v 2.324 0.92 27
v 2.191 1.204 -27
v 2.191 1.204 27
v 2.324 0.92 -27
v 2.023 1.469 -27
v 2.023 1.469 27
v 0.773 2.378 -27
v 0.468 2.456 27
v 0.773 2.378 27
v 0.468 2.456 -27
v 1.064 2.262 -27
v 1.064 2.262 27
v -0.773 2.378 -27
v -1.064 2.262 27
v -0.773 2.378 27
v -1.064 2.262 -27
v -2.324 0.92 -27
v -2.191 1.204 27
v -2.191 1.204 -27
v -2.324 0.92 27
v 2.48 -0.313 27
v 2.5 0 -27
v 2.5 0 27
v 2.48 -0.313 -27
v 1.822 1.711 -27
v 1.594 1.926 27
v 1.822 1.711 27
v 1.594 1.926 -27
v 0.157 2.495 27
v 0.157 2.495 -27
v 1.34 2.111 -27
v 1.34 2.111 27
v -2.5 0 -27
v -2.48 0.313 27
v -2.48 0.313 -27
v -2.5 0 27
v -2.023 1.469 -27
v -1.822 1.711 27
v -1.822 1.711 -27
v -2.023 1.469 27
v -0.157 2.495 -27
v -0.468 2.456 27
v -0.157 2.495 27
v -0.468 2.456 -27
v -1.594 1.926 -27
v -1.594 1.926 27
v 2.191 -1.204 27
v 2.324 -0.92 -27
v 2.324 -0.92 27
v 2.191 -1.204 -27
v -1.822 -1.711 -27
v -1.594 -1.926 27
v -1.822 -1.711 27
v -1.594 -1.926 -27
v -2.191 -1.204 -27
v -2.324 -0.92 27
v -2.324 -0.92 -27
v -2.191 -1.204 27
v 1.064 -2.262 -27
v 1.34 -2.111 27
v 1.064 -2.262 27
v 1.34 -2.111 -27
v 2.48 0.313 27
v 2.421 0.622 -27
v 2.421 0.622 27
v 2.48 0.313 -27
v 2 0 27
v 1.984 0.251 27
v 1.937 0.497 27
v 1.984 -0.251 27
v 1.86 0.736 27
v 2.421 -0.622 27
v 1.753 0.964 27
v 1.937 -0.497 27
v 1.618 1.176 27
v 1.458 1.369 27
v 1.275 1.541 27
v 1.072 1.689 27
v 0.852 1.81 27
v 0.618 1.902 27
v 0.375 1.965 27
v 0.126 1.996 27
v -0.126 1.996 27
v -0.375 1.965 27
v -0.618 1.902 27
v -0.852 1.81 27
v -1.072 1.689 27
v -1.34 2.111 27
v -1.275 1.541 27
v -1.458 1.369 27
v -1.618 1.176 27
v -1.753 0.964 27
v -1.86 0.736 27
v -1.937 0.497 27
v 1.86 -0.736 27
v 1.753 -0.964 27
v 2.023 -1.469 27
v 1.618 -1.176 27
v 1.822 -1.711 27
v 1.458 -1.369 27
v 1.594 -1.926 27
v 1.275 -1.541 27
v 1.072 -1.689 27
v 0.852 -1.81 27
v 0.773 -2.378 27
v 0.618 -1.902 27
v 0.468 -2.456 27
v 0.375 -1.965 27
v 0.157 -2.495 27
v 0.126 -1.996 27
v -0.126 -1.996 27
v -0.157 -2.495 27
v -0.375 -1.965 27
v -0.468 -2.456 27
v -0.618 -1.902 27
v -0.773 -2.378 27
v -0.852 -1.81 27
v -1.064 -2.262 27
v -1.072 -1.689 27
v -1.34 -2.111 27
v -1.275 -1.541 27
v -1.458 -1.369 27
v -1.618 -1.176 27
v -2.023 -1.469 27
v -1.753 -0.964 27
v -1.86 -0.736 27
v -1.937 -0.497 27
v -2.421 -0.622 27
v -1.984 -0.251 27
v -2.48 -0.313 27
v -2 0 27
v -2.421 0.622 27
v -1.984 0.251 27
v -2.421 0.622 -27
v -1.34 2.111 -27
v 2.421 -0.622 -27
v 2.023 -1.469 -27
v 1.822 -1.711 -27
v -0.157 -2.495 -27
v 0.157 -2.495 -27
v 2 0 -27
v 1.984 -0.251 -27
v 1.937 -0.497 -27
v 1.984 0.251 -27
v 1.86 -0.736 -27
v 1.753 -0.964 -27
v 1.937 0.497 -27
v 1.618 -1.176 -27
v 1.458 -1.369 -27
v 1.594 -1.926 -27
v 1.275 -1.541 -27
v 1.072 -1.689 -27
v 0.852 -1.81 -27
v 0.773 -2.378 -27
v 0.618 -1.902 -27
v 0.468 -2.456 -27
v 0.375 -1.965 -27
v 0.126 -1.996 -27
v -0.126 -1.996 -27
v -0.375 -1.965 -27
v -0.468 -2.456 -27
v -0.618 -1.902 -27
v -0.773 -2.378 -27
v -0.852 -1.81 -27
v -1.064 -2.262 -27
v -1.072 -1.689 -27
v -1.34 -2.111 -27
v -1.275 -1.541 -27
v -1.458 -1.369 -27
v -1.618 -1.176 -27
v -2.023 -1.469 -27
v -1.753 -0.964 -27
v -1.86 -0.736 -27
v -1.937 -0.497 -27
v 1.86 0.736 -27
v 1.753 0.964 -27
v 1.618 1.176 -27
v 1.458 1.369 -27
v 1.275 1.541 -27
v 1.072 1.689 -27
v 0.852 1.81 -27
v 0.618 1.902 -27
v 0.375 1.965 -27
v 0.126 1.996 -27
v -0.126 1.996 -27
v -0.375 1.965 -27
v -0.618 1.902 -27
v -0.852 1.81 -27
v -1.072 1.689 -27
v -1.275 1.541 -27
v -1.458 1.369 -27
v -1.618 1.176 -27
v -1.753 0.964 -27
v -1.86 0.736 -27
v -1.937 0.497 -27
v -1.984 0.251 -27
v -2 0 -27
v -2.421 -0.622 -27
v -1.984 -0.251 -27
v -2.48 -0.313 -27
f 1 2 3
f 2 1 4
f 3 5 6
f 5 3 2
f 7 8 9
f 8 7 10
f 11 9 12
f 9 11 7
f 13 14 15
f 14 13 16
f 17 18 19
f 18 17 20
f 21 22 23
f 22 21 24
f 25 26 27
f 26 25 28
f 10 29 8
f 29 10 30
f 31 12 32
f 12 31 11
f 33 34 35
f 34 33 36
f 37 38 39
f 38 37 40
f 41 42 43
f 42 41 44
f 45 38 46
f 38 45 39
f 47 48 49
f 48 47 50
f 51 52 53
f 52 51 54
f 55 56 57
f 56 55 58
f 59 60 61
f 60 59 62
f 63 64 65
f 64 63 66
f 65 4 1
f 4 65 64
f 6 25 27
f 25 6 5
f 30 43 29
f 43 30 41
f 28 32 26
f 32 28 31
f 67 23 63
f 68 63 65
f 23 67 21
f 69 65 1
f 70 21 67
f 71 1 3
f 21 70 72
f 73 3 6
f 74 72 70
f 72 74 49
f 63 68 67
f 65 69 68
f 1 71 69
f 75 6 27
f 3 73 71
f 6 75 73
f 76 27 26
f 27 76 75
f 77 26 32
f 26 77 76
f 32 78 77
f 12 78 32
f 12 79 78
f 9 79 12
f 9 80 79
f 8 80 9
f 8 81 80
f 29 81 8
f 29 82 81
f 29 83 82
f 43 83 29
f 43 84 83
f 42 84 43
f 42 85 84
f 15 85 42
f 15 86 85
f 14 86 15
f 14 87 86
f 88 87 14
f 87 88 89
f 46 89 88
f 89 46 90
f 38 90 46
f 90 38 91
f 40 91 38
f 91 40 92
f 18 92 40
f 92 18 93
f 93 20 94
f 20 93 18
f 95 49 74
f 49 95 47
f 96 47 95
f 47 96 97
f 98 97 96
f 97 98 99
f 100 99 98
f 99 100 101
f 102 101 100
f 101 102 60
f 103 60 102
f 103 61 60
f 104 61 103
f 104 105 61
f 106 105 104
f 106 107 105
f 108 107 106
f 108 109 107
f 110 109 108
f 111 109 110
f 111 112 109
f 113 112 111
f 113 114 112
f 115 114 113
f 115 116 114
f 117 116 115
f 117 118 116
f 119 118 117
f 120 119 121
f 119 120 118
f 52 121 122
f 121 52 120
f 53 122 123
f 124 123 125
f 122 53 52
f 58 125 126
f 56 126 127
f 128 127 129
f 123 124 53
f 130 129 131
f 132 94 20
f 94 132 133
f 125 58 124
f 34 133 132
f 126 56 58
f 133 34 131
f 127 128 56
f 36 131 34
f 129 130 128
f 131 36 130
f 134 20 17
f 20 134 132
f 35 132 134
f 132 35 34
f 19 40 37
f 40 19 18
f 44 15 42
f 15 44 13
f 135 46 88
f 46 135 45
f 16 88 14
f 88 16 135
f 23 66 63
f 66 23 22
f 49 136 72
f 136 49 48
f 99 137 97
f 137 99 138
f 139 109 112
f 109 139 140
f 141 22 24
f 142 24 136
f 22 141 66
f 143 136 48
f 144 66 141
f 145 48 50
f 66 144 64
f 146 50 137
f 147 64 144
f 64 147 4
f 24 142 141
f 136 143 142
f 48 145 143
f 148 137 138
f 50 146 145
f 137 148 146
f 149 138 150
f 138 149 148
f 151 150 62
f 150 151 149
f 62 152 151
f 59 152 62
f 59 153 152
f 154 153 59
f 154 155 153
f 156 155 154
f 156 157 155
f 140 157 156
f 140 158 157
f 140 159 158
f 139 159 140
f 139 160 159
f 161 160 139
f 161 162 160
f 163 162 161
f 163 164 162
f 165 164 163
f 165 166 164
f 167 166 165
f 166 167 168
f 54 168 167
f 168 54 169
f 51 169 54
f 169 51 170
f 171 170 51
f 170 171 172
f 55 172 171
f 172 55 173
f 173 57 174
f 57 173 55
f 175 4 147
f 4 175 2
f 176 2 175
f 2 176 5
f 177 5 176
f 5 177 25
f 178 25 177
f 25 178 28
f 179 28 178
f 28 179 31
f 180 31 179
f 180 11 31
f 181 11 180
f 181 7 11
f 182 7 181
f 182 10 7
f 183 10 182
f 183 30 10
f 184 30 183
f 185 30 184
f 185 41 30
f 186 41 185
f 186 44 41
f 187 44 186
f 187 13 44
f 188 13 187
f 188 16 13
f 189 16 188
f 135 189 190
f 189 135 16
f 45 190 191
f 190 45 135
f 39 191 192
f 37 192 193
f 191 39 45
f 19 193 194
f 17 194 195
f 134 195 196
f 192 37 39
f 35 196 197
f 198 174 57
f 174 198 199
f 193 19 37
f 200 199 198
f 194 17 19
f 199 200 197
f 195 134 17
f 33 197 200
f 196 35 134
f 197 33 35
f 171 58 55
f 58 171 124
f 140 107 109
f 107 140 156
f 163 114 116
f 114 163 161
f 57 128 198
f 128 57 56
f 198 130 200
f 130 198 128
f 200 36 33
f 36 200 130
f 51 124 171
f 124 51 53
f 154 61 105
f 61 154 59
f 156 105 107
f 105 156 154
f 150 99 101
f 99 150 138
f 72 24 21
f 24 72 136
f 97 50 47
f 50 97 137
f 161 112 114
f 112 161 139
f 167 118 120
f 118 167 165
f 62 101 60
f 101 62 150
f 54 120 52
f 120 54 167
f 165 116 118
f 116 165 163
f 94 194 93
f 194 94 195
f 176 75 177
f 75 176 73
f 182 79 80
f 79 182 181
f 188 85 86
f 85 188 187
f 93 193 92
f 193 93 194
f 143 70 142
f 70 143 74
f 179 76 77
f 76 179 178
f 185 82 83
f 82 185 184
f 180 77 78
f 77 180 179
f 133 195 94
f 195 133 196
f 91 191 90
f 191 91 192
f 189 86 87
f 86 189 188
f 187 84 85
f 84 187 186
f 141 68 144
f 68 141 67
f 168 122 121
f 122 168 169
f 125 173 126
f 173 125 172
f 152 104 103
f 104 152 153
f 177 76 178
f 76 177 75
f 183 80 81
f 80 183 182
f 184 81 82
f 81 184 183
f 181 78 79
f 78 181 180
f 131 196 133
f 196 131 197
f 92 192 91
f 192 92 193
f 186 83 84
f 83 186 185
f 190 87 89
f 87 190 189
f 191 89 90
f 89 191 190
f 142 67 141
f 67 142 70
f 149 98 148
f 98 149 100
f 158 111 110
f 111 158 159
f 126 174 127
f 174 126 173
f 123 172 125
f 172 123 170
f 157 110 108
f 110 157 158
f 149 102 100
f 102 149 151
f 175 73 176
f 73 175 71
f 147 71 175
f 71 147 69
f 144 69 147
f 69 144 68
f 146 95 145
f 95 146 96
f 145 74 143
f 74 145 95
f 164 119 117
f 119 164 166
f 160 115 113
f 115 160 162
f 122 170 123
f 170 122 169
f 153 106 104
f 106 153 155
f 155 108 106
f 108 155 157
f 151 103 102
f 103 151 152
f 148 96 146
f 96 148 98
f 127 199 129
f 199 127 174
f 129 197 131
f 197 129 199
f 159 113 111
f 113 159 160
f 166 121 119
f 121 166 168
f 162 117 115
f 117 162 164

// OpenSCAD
$fn = 50;


difference() {
	union() {
		translate(v = [0, 0, -27.0000000000]) {
			cylinder(h = 54, r = 2.5000000000);
		}
	}
	union() {
		translate(v = [0, 0, -100.0000000000]) {
			cylinder(h = 200, r = 2);
		}
	}
}
